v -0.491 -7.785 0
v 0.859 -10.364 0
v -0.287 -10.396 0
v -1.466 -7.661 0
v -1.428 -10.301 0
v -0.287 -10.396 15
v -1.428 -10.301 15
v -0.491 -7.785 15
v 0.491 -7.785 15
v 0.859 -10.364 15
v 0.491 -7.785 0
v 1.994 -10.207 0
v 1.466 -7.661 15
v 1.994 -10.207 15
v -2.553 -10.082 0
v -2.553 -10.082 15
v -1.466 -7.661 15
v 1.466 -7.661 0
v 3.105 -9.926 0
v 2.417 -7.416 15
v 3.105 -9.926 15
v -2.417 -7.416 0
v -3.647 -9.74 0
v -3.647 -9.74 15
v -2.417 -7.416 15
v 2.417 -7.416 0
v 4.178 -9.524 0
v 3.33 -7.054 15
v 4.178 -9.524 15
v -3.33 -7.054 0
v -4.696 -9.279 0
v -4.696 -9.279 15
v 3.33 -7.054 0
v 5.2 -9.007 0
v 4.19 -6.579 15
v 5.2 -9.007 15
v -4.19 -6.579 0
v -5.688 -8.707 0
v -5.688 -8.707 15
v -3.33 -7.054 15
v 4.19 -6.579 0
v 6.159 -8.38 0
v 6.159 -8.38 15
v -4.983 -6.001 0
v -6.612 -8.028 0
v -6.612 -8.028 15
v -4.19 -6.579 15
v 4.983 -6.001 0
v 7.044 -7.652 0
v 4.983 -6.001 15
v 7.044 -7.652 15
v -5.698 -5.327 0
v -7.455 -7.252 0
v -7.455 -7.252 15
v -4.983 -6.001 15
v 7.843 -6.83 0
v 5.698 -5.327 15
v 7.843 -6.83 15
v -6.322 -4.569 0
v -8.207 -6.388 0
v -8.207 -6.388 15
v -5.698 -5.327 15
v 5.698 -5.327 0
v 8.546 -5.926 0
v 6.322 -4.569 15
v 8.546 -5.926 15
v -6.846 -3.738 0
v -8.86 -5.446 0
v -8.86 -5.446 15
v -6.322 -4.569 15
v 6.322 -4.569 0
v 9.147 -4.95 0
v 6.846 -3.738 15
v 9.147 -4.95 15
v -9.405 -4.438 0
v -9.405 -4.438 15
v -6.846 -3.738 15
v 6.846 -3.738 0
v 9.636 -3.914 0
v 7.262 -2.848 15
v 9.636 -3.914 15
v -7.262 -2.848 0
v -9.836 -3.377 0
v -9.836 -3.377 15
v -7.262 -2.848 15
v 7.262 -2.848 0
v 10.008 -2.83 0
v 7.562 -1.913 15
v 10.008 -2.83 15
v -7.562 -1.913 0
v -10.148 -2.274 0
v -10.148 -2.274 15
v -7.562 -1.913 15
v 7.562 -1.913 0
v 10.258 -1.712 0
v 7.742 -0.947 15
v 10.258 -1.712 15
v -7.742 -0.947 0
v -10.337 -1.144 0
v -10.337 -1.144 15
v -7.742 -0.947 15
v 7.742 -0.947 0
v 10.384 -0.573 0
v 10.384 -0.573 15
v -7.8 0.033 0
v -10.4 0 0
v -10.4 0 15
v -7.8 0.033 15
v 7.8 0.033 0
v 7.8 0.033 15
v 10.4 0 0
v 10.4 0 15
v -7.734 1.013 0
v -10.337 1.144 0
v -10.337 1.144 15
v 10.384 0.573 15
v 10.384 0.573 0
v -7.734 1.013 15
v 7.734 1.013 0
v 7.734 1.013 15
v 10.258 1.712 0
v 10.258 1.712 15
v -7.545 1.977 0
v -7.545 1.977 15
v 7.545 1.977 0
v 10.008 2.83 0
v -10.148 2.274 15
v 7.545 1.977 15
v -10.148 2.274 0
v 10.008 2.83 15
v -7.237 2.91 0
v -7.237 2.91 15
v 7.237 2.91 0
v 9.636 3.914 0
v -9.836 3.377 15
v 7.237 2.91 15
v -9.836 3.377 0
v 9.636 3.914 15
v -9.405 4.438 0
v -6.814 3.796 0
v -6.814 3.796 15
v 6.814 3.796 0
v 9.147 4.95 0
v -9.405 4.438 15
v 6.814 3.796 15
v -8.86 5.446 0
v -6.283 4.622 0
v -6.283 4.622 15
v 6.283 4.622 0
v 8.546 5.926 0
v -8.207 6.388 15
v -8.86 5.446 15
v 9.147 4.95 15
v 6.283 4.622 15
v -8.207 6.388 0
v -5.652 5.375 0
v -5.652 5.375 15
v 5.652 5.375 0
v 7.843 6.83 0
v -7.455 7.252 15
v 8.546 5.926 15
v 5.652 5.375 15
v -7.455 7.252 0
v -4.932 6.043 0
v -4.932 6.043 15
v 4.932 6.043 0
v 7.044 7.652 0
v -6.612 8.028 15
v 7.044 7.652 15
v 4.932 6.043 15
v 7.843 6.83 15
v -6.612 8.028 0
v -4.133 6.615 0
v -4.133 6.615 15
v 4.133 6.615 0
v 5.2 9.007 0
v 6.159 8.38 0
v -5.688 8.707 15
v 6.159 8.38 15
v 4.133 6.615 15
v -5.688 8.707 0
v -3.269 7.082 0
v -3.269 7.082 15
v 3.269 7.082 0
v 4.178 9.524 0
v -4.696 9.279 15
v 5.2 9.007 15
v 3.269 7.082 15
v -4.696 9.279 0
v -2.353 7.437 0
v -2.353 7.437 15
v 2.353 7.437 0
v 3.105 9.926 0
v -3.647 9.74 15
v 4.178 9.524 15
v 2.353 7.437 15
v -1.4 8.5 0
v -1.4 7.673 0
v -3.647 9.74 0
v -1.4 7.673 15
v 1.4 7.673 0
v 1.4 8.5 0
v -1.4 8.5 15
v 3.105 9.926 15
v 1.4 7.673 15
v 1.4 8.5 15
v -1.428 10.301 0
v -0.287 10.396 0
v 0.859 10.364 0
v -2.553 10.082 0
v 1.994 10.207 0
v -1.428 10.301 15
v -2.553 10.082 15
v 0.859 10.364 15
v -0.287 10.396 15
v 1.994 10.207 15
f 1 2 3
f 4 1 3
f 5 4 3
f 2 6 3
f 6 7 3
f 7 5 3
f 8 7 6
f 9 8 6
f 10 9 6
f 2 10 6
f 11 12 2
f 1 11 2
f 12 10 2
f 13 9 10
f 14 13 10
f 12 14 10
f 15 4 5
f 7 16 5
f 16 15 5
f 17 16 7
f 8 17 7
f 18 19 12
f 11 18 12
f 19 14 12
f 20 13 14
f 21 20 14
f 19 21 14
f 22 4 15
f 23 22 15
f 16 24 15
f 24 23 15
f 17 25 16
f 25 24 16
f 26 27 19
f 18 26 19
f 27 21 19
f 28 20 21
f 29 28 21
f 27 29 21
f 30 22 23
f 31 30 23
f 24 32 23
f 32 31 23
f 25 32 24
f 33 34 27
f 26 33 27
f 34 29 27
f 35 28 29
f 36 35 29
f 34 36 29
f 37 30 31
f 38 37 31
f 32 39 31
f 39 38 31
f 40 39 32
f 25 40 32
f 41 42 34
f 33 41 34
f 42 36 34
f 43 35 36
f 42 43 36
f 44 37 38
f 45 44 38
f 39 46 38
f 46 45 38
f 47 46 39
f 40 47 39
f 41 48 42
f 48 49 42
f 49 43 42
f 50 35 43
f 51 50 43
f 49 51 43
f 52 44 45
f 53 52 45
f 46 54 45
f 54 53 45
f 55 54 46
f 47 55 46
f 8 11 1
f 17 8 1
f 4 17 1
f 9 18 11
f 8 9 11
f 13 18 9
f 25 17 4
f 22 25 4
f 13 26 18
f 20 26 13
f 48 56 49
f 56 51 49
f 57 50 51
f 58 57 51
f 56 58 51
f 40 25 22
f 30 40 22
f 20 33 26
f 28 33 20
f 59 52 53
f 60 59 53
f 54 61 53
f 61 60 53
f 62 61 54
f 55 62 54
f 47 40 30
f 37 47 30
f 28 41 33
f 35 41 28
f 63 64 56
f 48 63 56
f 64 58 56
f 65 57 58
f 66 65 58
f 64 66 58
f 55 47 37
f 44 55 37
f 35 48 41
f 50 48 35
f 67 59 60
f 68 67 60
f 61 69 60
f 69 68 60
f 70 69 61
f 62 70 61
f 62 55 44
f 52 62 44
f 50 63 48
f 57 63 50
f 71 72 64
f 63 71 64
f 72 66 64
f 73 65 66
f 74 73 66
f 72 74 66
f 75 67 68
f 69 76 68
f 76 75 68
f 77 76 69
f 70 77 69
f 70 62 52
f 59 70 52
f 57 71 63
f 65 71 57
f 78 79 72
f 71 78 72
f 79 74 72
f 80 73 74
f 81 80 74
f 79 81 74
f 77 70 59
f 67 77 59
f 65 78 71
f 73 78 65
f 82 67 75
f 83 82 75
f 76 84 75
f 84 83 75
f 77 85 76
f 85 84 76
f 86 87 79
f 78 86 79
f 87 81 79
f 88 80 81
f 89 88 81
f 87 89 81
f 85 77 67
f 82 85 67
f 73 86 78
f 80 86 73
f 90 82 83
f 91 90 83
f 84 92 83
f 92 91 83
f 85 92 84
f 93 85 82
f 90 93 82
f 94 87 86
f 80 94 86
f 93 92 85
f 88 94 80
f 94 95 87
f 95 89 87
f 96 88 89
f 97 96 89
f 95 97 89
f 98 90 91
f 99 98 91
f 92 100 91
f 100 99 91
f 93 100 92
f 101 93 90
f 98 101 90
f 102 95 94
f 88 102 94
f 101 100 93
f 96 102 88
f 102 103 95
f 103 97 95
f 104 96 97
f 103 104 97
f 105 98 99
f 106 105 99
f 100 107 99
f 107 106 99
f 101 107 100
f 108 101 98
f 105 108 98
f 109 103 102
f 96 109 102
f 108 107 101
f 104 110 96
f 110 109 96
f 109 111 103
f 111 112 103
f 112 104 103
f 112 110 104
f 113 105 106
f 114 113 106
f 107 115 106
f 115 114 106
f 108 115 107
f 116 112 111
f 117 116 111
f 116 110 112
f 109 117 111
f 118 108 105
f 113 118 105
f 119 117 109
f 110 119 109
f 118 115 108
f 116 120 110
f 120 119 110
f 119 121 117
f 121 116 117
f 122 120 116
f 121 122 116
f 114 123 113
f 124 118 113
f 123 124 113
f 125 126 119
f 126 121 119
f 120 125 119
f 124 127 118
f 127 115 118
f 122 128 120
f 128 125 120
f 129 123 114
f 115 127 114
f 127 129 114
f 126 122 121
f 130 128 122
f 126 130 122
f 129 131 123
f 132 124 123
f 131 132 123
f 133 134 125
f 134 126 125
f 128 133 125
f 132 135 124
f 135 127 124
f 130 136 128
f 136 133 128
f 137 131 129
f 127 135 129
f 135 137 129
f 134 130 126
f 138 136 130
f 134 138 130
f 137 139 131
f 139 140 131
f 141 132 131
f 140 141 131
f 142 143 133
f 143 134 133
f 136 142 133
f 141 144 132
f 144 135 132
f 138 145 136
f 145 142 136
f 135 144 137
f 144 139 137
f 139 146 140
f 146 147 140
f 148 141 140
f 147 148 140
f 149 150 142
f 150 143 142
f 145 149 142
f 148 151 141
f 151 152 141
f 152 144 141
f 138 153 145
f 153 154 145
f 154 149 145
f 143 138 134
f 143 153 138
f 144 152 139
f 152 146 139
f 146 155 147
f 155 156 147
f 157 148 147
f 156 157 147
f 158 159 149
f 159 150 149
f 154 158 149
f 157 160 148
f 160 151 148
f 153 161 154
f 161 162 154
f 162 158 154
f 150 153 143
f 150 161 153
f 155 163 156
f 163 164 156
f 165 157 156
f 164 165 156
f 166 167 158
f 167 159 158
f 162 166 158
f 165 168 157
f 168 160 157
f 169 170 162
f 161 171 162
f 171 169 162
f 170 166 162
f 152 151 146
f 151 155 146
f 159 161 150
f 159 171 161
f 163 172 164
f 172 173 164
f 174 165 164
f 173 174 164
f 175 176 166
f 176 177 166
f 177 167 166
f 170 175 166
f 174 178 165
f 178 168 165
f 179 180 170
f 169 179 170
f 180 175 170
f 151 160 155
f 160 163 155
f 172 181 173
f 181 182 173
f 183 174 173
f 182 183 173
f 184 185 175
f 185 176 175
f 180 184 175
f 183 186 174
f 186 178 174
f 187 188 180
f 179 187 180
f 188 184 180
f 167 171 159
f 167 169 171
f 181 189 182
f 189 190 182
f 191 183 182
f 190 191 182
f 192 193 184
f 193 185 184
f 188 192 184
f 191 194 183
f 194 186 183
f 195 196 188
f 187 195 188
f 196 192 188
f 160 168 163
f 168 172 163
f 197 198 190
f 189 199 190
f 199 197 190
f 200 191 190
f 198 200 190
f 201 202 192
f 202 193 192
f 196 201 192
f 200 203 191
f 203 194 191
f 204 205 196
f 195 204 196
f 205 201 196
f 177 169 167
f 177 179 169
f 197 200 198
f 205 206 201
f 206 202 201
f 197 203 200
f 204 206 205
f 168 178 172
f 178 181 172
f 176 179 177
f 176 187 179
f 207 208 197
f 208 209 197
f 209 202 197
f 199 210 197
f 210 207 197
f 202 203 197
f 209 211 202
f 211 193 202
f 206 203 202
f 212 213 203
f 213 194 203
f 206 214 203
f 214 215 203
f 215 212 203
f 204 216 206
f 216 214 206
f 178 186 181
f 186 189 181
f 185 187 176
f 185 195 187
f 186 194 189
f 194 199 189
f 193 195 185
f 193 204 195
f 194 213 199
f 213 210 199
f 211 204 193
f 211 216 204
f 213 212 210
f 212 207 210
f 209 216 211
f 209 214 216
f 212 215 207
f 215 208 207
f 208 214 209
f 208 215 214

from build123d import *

# Parameters (mm, degrees)
SKETCH1_R           = 10.4
SKETCH1_R_2         = 7.8
BOSS_EXTRUDE1_DEPTH = 15
CUT_EXTRUDE1_REACH  = 17
SKETCH2_W           = 2.8
SKETCH2_H           = 2.8


with BuildPart() as part:
    # Sketch1 → Boss-Extrude1 (new body)
    with BuildSketch(Plane.XY):
        Circle(SKETCH1_R)
        Circle(SKETCH1_R_2, mode=Mode.SUBTRACT)
    extrude(amount=BOSS_EXTRUDE1_DEPTH)

    # Sketch2 → Cut-Extrude1 (cut, up to next)
    with BuildSketch(Plane.XY.offset(15), mode=Mode.PRIVATE) as cut_extrude1_sk1:
        with Locations((0, 7.1)):
            Rectangle(SKETCH2_W, SKETCH2_H)
    cut_extrude1_tool1 = extrude(cut_extrude1_sk1.sketch, amount=-CUT_EXTRUDE1_REACH, mode=Mode.PRIVATE) & part.part
    add(cut_extrude1_tool1.solids().sort_by_distance((0, 7.1, 15))[0], mode=Mode.SUBTRACT)


solid = part.part
